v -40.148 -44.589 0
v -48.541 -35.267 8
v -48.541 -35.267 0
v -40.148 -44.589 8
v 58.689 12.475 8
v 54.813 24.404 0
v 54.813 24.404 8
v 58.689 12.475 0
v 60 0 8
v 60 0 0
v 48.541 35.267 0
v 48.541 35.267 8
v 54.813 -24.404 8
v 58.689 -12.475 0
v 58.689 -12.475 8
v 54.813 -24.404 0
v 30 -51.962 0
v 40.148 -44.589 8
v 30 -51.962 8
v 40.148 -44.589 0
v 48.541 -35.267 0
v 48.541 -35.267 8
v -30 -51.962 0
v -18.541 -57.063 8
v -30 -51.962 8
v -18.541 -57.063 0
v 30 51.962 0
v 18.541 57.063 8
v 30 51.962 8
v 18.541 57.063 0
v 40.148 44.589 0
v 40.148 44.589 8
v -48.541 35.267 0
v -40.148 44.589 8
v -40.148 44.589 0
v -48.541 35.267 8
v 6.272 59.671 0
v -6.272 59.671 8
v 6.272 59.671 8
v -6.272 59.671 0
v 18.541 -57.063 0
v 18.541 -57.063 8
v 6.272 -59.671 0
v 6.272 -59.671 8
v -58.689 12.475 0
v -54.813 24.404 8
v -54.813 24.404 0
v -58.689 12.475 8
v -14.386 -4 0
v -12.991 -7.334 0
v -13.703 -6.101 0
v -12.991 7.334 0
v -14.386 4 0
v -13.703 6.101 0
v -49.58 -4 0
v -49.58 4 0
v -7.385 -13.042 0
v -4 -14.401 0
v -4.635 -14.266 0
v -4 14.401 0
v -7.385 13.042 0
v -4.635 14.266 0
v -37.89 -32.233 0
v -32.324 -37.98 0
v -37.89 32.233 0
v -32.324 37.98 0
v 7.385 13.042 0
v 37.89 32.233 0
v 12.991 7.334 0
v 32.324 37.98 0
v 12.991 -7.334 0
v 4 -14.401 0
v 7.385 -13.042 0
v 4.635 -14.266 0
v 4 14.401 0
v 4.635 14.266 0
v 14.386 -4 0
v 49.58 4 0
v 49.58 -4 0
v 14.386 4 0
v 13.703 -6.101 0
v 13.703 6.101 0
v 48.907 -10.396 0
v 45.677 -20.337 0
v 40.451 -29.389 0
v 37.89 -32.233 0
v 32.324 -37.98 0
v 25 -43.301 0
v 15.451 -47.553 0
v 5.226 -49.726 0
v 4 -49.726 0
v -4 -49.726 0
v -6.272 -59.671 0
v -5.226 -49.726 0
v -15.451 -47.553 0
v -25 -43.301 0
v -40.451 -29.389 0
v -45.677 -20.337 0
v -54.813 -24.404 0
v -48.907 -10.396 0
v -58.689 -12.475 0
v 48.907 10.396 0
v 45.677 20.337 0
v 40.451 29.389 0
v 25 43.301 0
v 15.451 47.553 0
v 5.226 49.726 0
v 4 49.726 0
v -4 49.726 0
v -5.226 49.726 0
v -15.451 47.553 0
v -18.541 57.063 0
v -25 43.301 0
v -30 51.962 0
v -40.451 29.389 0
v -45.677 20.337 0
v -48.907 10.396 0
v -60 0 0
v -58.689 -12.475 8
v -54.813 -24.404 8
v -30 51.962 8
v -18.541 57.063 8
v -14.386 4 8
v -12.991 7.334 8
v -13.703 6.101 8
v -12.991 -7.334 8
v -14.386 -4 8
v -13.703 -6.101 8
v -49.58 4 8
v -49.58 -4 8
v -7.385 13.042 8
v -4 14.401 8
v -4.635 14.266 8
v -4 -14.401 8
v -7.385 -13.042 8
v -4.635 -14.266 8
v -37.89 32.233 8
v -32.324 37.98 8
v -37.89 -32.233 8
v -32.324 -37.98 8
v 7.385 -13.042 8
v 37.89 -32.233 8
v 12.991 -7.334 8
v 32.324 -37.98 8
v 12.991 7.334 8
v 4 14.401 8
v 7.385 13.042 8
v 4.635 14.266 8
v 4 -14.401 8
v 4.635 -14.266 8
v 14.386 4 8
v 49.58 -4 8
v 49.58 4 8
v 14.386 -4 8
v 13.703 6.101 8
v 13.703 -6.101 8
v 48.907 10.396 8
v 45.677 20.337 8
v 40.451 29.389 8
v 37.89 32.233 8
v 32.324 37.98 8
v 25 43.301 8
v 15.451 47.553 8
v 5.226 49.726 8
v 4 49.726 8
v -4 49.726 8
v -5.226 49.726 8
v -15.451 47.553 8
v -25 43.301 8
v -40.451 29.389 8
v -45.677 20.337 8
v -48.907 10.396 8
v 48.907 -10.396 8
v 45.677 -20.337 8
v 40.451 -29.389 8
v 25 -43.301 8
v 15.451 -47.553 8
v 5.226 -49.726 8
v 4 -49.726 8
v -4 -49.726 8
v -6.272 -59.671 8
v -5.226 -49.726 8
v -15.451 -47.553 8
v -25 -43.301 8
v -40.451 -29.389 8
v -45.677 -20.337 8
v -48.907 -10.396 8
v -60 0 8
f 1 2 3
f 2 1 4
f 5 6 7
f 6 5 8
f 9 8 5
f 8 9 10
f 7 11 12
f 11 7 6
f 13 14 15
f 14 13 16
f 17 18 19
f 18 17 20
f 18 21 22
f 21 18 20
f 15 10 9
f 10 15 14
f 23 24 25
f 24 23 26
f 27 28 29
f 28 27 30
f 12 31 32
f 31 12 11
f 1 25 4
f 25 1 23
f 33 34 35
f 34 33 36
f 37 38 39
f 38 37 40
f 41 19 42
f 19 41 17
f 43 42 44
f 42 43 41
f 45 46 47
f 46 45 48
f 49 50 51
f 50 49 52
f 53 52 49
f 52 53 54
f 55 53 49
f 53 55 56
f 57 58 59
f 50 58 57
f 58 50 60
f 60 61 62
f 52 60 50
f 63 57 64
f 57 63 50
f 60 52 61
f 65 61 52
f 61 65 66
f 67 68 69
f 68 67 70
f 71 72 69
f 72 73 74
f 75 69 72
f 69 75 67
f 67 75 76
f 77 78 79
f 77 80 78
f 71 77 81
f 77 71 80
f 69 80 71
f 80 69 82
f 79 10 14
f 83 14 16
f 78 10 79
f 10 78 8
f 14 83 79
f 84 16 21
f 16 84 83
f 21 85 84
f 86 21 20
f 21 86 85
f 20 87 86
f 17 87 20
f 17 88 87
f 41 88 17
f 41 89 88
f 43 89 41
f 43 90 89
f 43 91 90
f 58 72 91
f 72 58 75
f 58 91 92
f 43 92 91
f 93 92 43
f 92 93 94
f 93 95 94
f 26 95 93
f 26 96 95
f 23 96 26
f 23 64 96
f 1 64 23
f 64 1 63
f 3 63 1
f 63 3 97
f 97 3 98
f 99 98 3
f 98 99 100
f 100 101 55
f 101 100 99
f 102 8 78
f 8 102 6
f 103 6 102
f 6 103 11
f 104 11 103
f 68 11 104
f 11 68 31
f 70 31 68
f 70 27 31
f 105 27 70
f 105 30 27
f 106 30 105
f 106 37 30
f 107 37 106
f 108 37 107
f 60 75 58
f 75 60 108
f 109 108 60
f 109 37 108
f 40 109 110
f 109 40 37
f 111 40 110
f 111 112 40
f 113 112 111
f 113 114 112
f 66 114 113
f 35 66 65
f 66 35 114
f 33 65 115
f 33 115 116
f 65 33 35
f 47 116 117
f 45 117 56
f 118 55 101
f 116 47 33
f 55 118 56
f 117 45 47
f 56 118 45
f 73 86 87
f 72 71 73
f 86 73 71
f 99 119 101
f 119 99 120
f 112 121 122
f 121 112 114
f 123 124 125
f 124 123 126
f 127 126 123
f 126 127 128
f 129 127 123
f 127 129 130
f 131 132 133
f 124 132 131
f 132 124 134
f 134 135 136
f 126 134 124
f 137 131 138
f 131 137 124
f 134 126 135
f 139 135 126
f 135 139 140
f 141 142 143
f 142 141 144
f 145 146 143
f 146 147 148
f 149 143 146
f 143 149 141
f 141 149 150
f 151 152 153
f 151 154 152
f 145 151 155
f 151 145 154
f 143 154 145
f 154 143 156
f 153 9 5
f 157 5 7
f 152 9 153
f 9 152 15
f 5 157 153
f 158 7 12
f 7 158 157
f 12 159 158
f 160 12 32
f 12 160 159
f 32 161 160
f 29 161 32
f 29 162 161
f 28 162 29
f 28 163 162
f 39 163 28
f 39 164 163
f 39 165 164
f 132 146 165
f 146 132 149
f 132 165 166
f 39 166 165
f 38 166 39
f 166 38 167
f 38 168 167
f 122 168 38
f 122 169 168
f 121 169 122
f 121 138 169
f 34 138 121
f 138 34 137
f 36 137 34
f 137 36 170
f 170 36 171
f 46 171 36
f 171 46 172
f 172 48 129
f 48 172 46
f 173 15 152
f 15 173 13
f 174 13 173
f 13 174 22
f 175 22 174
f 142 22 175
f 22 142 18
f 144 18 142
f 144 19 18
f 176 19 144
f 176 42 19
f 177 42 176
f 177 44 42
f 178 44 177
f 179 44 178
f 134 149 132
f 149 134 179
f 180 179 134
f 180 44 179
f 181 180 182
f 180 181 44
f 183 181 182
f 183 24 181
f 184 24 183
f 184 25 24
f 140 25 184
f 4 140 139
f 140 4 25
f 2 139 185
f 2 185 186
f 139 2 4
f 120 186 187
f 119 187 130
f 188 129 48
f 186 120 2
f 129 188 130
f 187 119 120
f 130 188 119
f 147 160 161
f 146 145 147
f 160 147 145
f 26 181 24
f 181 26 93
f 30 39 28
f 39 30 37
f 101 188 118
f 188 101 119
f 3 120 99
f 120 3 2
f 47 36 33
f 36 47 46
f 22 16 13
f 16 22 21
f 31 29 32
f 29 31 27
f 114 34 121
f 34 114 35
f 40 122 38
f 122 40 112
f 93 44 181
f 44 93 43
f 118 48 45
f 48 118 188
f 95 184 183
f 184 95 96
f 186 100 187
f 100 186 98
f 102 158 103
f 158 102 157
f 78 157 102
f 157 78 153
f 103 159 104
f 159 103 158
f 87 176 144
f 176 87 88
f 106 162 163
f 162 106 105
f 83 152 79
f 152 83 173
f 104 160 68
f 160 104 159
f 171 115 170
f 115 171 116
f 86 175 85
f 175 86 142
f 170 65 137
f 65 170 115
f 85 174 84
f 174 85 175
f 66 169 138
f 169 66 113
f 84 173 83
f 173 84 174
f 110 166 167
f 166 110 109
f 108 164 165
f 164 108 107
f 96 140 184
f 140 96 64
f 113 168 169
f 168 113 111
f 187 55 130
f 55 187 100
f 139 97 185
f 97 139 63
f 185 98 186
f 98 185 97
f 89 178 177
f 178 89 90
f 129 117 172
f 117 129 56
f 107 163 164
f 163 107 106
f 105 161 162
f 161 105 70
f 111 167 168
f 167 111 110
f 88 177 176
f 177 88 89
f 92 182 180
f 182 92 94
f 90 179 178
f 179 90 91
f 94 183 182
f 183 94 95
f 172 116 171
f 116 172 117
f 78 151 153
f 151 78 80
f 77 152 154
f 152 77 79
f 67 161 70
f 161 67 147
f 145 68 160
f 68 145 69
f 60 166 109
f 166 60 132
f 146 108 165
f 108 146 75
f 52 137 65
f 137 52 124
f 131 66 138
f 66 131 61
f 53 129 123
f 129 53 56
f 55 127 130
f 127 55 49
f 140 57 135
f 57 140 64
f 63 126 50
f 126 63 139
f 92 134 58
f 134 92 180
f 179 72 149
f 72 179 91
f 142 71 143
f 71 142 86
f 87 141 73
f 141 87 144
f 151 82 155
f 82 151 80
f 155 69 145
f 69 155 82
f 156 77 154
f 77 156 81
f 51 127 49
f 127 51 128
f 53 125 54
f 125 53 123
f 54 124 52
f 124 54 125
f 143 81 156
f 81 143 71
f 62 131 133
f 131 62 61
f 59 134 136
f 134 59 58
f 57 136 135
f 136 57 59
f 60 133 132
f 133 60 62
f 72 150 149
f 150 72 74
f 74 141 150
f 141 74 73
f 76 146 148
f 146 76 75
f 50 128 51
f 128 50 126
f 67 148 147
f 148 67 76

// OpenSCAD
/* doodle-meta {"version":1,"parameters":{"outer_diameter":{"label":"Outer Diameter","description":"Changes the overall diameter of the wheel rim","unit":"mm","feature":"rim"},"inner_diameter":{"label":"Inner Diameter","description":"Changes the inner diameter of the rim (rim thickness)","unit":"mm","feature":"rim"},"hub_diameter":{"label":"Hub Diameter","description":"Changes the diameter of the central hub","unit":"mm","feature":"hub"},"spoke_count":{"label":"Spoke Count","description":"Changes the number of radial spokes","unit":"count","feature":"spokes"},"spoke_width":{"label":"Spoke Width","description":"Changes the width of each spoke","unit":"mm","feature":"spokes"},"wheel_thickness":{"label":"Wheel Thickness","description":"Changes the thickness (height) of the wheel","unit":"mm","feature":"body"}},"features":{"rim":{"kind":"dimension","axis":"x","label":"Outer Diameter"},"hub":{"kind":"dimension","axis":"x","label":"Hub Diameter"},"spokes":{"kind":"dimension","axis":"x","label":"Spoke Width"},"body":{"kind":"dimension","axis":"z","label":"Wheel Thickness"}}} */

// Parameters
outer_diameter = 120;
inner_diameter = 100;
hub_diameter = 30;
spoke_count = 8;
spoke_width = 8;
wheel_thickness = 8;

// Derived dimensions
outer_radius = outer_diameter / 2;
inner_radius = inner_diameter / 2;
hub_radius = hub_diameter / 2;

// Spoke spans from inside the hub to inside the rim for solid connectivity
spoke_start = hub_radius - 5;
spoke_end = inner_radius + 5;
spoke_length = spoke_end - spoke_start;

// Modules
module rim() {
    difference() {
        cylinder(h = wheel_thickness, r = outer_radius, center = true);
        cylinder(h = wheel_thickness + 2, r = inner_radius, center = true);
    }
}

module hub() {
    cylinder(h = wheel_thickness, r = hub_radius, center = true);
}

module spoke() {
    // Spoke extends from inside hub to inside rim, centered on X axis
    translate([(spoke_start + spoke_end) / 2, 0, 0]) {
        cube([spoke_length, spoke_width, wheel_thickness], center = true);
    }
}

module spokes() {
    for (i = [0 : spoke_count - 1]) {
        rotate([0, 0, i * (360 / spoke_count)]) {
            spoke();
        }
    }
}

// Main Assembly
// Translate up by half thickness to sit on Z=0
translate([0, 0, wheel_thickness / 2]) {
    union() {
        rim();
        hub();
        spokes();
    }
}
